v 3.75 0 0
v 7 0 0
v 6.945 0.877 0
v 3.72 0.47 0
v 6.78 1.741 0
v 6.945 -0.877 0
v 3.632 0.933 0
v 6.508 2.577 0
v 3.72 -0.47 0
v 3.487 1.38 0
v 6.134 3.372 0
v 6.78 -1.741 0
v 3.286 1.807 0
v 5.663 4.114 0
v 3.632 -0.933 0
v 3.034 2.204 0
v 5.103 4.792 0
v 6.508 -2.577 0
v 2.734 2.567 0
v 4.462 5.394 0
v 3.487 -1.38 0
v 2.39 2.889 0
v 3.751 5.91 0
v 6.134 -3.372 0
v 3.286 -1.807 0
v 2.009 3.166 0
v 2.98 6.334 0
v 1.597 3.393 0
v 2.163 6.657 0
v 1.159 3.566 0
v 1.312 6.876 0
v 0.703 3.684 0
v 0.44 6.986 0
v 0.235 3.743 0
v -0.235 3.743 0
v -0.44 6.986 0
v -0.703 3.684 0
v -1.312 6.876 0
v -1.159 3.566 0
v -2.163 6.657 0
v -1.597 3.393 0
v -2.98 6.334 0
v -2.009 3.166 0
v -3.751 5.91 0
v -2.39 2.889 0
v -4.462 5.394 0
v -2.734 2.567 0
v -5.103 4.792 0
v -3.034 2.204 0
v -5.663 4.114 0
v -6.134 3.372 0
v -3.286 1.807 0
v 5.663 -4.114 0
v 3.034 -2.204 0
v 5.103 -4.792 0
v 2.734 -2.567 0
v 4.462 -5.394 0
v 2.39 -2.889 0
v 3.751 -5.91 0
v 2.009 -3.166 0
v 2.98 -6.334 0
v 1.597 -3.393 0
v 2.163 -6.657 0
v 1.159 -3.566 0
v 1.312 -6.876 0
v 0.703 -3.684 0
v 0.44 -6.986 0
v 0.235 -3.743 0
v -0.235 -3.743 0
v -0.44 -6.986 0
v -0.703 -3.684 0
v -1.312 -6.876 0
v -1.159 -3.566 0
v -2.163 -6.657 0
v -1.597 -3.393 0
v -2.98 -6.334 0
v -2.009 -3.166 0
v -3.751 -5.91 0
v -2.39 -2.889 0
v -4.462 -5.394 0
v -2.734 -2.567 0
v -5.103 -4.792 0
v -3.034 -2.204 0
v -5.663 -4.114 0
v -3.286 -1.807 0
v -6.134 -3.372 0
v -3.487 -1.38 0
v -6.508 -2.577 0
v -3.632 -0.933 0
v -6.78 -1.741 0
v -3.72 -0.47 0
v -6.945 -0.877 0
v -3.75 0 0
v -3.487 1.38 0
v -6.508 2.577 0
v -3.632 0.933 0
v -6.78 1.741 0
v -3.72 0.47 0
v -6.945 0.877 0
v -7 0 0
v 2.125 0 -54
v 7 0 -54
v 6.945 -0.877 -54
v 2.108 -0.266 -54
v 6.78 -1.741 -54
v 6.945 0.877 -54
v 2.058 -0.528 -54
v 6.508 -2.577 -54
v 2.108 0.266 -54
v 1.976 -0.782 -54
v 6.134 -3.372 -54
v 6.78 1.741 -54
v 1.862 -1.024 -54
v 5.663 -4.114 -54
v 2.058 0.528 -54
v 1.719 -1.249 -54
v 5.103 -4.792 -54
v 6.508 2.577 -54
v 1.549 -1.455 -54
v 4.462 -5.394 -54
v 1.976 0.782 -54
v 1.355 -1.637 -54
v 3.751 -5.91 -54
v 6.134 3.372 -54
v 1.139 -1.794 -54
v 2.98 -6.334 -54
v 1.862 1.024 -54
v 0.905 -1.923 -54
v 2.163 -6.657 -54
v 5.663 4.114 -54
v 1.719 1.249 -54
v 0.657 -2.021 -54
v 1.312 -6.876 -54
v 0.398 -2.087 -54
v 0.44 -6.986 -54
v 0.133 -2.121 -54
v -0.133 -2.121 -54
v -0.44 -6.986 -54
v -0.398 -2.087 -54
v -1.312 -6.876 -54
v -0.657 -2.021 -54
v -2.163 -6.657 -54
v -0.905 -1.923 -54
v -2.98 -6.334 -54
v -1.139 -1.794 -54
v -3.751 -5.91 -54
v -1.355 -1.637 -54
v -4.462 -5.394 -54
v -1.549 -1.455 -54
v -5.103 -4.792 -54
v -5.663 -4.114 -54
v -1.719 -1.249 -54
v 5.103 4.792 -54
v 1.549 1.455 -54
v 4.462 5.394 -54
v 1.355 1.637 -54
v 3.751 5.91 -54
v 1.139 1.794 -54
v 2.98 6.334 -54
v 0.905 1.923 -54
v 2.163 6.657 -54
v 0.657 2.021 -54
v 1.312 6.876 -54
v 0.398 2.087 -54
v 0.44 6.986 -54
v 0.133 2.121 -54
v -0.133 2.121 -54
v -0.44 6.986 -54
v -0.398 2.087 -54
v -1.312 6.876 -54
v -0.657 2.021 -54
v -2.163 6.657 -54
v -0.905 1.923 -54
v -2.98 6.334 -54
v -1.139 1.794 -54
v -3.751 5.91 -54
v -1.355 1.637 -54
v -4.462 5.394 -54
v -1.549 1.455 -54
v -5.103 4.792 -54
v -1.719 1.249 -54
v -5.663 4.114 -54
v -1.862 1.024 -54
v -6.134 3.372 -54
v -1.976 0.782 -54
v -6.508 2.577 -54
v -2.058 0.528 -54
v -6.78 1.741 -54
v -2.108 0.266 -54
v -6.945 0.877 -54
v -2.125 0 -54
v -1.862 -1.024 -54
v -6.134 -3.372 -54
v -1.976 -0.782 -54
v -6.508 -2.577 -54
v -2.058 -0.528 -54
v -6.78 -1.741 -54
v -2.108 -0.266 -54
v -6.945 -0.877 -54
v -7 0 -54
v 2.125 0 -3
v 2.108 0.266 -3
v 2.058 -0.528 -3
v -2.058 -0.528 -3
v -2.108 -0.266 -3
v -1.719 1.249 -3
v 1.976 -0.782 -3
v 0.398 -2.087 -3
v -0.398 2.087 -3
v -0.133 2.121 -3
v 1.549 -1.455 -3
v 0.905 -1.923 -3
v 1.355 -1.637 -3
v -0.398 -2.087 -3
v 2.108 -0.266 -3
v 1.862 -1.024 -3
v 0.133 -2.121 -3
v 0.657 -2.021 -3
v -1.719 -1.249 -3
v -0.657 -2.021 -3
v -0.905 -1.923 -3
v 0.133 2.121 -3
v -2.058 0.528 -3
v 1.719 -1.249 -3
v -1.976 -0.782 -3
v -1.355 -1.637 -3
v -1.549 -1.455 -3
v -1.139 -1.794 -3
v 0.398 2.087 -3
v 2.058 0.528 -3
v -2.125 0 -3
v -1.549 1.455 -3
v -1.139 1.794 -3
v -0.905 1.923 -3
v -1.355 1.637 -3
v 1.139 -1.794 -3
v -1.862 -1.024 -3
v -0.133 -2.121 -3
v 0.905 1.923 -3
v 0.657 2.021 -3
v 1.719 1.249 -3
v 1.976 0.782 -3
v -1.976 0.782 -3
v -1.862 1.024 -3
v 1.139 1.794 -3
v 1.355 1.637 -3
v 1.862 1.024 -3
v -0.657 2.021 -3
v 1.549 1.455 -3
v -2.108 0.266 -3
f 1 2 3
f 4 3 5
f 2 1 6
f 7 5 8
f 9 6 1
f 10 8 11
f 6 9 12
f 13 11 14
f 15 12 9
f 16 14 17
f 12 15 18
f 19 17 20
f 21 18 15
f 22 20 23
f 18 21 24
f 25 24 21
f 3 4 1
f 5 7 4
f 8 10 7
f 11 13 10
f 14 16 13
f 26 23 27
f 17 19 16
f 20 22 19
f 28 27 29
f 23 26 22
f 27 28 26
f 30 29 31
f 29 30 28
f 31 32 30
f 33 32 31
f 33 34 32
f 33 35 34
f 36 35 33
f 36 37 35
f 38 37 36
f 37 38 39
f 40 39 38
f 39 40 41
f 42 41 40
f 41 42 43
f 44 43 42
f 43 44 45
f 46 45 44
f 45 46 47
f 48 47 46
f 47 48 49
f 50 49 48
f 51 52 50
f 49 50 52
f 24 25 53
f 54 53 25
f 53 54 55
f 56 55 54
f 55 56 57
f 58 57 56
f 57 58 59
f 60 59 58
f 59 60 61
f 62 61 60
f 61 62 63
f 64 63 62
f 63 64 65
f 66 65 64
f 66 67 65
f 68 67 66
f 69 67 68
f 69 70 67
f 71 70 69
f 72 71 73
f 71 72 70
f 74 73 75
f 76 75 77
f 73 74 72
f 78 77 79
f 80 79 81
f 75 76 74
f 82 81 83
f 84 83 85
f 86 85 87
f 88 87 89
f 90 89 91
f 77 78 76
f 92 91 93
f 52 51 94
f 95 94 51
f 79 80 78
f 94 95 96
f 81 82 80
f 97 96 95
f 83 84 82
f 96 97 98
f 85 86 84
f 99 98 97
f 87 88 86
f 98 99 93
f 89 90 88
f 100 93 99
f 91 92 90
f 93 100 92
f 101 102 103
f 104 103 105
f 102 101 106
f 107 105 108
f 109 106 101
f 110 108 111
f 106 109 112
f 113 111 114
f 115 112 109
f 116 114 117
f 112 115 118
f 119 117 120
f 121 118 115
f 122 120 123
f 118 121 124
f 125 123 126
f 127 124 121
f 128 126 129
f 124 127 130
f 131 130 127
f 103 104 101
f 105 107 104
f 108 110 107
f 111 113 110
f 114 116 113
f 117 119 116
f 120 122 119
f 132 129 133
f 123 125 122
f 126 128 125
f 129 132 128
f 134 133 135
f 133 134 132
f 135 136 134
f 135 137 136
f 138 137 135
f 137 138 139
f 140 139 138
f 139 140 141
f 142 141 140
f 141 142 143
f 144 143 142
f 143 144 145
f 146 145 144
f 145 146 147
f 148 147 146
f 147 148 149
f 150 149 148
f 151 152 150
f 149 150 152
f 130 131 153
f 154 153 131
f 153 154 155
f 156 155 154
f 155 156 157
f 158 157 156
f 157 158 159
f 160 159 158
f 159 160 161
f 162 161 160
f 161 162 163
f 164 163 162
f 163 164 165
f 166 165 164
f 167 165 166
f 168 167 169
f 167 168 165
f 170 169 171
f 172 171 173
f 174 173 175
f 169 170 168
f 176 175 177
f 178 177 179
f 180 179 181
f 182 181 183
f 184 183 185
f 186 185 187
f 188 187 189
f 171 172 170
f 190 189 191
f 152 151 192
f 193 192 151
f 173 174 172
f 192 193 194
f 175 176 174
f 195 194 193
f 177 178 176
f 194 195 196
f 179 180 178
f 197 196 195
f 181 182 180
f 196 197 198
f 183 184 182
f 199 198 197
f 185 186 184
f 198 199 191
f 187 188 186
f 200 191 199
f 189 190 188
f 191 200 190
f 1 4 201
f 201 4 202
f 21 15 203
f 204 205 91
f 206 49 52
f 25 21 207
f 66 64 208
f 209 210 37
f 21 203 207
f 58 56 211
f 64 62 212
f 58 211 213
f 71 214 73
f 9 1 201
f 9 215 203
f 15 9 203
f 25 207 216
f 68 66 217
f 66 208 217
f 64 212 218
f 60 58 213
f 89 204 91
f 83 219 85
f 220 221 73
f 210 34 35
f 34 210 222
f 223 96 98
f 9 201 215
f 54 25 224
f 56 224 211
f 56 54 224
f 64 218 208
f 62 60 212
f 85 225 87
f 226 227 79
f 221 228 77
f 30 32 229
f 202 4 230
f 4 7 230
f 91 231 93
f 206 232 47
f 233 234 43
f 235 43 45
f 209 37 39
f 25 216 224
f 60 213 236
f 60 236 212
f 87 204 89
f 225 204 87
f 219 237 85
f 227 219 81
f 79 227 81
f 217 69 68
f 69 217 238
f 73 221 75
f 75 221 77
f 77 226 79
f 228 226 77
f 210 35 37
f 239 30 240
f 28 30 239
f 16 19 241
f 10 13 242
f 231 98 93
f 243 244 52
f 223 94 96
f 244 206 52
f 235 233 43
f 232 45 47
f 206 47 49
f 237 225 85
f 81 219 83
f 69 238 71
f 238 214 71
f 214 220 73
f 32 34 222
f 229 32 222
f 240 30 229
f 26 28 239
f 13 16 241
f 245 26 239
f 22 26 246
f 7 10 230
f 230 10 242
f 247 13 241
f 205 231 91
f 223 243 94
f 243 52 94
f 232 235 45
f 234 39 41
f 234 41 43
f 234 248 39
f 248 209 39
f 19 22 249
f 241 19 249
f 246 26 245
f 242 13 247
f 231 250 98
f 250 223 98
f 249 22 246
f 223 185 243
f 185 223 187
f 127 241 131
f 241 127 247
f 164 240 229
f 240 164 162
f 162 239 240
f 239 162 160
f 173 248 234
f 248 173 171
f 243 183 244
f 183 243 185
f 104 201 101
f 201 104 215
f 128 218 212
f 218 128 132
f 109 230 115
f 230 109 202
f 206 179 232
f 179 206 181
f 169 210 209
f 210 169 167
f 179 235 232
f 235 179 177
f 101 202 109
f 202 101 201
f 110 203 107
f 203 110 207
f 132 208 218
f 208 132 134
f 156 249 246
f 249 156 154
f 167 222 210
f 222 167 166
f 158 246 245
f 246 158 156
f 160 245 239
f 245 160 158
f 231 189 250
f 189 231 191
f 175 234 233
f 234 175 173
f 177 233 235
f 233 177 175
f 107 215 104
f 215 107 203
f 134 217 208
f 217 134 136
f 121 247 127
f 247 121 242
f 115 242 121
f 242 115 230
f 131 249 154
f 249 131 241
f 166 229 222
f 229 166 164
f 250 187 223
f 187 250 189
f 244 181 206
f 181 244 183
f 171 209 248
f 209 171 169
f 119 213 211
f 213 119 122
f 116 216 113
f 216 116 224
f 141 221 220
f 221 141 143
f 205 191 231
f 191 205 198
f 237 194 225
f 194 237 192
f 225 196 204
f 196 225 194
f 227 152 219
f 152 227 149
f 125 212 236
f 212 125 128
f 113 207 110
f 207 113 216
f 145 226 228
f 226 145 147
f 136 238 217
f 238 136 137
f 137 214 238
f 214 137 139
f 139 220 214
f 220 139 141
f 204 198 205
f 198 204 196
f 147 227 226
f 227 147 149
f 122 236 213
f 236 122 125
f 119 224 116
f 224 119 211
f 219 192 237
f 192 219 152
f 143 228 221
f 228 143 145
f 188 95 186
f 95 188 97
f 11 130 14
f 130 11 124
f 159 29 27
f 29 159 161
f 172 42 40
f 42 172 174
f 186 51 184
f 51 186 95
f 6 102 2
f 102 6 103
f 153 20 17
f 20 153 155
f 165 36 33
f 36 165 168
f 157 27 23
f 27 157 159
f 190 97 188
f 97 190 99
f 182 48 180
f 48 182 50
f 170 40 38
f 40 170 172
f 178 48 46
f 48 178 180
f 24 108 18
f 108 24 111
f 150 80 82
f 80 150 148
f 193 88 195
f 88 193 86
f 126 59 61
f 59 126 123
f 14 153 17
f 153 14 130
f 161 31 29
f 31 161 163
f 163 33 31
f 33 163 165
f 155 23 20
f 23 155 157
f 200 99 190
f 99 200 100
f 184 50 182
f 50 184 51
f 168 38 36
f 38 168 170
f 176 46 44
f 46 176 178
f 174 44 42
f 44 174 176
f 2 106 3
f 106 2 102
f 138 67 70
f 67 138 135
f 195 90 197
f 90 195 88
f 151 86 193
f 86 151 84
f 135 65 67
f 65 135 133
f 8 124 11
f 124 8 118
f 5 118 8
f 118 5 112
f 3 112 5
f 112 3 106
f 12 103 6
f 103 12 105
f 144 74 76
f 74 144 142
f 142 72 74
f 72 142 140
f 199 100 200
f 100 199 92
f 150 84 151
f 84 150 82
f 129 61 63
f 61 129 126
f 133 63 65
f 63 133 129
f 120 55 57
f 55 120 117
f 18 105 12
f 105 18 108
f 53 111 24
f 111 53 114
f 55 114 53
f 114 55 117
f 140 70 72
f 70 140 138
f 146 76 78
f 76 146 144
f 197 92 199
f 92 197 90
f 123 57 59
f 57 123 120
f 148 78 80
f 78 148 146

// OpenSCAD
$fn = 50;


difference() {
	union() {
		translate(v = [0, 0, -54.0000000000]) {
			cylinder(h = 54, r = 7.0000000000);
		}
		cylinder(h = 0, r = 16.0000000000);
	}
	union() {
		translate(v = [0, 0, 0]) {
			rotate(a = [0, 0, 0]) {
				difference() {
					union() {
						#translate(v = [0, 0, -54.0000000000]) {
							cylinder(h = 54, r = 2.0000000000);
						}
						#translate(v = [0, 0, -3]) {
							cylinder(h = 3, r1 = 2.1250000000, r2 = 3.7500000000);
						}
						#translate(v = [0, 0, -54.0000000000]) {
							cylinder(h = 54, r = 2.1250000000);
						}
						#translate(v = [0, 0, -54.0000000000]) {
							cylinder(h = 54, r = 2.0000000000);
						}
					}
					union();
				}
			}
		}
	}
}
